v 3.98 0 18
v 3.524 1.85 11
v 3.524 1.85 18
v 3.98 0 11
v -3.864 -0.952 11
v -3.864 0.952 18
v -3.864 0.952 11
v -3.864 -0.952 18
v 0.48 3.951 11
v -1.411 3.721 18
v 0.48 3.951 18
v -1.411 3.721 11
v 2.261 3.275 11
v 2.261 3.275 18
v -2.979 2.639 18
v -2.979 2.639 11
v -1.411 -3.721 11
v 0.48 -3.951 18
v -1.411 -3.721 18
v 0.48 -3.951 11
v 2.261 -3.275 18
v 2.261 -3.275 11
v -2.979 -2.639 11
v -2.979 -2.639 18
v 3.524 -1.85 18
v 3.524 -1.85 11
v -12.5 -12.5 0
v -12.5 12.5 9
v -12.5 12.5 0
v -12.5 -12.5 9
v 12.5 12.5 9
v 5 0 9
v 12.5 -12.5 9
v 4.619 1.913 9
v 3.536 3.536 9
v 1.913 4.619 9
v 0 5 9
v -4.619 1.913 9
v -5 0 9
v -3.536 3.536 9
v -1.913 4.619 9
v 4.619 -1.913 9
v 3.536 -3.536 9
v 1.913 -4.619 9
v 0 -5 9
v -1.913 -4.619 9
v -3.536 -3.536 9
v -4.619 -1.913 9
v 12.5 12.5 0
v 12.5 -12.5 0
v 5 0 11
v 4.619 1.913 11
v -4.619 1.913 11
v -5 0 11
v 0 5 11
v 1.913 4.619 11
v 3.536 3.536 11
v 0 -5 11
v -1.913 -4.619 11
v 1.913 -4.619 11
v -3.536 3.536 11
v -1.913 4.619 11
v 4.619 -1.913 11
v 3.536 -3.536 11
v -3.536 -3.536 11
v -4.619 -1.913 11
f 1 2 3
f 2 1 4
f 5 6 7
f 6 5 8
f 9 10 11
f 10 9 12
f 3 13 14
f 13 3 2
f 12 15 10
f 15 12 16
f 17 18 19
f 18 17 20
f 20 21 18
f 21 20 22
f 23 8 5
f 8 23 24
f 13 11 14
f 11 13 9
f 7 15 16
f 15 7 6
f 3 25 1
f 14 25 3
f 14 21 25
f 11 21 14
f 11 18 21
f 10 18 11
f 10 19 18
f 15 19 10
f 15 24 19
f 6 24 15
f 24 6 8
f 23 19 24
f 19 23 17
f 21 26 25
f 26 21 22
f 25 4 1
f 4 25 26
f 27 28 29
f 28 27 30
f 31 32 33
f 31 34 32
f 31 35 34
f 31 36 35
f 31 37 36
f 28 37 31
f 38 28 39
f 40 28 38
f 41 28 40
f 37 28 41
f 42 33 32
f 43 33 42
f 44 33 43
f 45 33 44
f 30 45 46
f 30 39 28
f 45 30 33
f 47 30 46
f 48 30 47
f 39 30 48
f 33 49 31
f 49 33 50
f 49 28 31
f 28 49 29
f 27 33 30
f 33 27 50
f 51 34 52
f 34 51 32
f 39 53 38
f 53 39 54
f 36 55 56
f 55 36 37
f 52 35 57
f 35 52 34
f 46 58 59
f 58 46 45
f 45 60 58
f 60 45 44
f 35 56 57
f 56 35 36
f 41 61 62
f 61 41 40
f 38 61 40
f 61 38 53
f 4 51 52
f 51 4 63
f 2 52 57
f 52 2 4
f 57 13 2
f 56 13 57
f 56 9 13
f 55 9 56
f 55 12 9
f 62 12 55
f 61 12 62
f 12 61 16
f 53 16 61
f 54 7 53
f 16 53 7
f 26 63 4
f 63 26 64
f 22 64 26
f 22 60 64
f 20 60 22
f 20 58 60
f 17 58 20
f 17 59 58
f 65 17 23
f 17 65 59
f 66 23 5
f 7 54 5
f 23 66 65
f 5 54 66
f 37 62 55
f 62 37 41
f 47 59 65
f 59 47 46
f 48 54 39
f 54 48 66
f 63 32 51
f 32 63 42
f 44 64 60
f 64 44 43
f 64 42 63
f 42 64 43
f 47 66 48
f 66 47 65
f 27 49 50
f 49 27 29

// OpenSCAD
// Generated by SolidPython 1.1.3 on 2023-12-28 20:07:46


difference() {
	union() {
		cylinder(h = 18, r = 3.9800000000);
		cube(center = true, size = [25, 25, 18]);
		cylinder(h = 11, r = 5);
	}
	translate(v = [0, 0, -150]) {
		cube(center = true, size = [300, 300, 300]);
	}
}
/***********************************************
*********      SolidPython code:      **********
************************************************
 
#! /usr/bin/env python3
from solid.objects import *
from solid.solidpython import *
import sys
from math import cos, radians, sin, pi, tau
from pathlib import Path

from euclid3 import Point2, Point3, Vector3

from solid import *
from solid.utils import *

from typing import Set, Sequence, List, Callable, Optional, Union, Iterable, Tuple

def bisect_floor(input) -> OpenSCADObject:
	size = 300
	floor = translate([0,0,-150])(cube([300,300,300],center = True))
	return input - floor

if __name__ == "__main__":
	out_dir = sys.argv[1] if len(sys.argv) > 1 else Path(__file__).parent

	mount = cylinder(r = 3.98, h = 18) + cube([25,25,18],center=True) + cylinder(r = 5, h = 11)
	a = bisect_floor(mount)
	file_out = scad_render_to_file(a,  out_dir=out_dir, include_orig_code=True)
	print(f"{__file__}: SCAD file written to: \n{file_out}")
 
 
************************************************/
